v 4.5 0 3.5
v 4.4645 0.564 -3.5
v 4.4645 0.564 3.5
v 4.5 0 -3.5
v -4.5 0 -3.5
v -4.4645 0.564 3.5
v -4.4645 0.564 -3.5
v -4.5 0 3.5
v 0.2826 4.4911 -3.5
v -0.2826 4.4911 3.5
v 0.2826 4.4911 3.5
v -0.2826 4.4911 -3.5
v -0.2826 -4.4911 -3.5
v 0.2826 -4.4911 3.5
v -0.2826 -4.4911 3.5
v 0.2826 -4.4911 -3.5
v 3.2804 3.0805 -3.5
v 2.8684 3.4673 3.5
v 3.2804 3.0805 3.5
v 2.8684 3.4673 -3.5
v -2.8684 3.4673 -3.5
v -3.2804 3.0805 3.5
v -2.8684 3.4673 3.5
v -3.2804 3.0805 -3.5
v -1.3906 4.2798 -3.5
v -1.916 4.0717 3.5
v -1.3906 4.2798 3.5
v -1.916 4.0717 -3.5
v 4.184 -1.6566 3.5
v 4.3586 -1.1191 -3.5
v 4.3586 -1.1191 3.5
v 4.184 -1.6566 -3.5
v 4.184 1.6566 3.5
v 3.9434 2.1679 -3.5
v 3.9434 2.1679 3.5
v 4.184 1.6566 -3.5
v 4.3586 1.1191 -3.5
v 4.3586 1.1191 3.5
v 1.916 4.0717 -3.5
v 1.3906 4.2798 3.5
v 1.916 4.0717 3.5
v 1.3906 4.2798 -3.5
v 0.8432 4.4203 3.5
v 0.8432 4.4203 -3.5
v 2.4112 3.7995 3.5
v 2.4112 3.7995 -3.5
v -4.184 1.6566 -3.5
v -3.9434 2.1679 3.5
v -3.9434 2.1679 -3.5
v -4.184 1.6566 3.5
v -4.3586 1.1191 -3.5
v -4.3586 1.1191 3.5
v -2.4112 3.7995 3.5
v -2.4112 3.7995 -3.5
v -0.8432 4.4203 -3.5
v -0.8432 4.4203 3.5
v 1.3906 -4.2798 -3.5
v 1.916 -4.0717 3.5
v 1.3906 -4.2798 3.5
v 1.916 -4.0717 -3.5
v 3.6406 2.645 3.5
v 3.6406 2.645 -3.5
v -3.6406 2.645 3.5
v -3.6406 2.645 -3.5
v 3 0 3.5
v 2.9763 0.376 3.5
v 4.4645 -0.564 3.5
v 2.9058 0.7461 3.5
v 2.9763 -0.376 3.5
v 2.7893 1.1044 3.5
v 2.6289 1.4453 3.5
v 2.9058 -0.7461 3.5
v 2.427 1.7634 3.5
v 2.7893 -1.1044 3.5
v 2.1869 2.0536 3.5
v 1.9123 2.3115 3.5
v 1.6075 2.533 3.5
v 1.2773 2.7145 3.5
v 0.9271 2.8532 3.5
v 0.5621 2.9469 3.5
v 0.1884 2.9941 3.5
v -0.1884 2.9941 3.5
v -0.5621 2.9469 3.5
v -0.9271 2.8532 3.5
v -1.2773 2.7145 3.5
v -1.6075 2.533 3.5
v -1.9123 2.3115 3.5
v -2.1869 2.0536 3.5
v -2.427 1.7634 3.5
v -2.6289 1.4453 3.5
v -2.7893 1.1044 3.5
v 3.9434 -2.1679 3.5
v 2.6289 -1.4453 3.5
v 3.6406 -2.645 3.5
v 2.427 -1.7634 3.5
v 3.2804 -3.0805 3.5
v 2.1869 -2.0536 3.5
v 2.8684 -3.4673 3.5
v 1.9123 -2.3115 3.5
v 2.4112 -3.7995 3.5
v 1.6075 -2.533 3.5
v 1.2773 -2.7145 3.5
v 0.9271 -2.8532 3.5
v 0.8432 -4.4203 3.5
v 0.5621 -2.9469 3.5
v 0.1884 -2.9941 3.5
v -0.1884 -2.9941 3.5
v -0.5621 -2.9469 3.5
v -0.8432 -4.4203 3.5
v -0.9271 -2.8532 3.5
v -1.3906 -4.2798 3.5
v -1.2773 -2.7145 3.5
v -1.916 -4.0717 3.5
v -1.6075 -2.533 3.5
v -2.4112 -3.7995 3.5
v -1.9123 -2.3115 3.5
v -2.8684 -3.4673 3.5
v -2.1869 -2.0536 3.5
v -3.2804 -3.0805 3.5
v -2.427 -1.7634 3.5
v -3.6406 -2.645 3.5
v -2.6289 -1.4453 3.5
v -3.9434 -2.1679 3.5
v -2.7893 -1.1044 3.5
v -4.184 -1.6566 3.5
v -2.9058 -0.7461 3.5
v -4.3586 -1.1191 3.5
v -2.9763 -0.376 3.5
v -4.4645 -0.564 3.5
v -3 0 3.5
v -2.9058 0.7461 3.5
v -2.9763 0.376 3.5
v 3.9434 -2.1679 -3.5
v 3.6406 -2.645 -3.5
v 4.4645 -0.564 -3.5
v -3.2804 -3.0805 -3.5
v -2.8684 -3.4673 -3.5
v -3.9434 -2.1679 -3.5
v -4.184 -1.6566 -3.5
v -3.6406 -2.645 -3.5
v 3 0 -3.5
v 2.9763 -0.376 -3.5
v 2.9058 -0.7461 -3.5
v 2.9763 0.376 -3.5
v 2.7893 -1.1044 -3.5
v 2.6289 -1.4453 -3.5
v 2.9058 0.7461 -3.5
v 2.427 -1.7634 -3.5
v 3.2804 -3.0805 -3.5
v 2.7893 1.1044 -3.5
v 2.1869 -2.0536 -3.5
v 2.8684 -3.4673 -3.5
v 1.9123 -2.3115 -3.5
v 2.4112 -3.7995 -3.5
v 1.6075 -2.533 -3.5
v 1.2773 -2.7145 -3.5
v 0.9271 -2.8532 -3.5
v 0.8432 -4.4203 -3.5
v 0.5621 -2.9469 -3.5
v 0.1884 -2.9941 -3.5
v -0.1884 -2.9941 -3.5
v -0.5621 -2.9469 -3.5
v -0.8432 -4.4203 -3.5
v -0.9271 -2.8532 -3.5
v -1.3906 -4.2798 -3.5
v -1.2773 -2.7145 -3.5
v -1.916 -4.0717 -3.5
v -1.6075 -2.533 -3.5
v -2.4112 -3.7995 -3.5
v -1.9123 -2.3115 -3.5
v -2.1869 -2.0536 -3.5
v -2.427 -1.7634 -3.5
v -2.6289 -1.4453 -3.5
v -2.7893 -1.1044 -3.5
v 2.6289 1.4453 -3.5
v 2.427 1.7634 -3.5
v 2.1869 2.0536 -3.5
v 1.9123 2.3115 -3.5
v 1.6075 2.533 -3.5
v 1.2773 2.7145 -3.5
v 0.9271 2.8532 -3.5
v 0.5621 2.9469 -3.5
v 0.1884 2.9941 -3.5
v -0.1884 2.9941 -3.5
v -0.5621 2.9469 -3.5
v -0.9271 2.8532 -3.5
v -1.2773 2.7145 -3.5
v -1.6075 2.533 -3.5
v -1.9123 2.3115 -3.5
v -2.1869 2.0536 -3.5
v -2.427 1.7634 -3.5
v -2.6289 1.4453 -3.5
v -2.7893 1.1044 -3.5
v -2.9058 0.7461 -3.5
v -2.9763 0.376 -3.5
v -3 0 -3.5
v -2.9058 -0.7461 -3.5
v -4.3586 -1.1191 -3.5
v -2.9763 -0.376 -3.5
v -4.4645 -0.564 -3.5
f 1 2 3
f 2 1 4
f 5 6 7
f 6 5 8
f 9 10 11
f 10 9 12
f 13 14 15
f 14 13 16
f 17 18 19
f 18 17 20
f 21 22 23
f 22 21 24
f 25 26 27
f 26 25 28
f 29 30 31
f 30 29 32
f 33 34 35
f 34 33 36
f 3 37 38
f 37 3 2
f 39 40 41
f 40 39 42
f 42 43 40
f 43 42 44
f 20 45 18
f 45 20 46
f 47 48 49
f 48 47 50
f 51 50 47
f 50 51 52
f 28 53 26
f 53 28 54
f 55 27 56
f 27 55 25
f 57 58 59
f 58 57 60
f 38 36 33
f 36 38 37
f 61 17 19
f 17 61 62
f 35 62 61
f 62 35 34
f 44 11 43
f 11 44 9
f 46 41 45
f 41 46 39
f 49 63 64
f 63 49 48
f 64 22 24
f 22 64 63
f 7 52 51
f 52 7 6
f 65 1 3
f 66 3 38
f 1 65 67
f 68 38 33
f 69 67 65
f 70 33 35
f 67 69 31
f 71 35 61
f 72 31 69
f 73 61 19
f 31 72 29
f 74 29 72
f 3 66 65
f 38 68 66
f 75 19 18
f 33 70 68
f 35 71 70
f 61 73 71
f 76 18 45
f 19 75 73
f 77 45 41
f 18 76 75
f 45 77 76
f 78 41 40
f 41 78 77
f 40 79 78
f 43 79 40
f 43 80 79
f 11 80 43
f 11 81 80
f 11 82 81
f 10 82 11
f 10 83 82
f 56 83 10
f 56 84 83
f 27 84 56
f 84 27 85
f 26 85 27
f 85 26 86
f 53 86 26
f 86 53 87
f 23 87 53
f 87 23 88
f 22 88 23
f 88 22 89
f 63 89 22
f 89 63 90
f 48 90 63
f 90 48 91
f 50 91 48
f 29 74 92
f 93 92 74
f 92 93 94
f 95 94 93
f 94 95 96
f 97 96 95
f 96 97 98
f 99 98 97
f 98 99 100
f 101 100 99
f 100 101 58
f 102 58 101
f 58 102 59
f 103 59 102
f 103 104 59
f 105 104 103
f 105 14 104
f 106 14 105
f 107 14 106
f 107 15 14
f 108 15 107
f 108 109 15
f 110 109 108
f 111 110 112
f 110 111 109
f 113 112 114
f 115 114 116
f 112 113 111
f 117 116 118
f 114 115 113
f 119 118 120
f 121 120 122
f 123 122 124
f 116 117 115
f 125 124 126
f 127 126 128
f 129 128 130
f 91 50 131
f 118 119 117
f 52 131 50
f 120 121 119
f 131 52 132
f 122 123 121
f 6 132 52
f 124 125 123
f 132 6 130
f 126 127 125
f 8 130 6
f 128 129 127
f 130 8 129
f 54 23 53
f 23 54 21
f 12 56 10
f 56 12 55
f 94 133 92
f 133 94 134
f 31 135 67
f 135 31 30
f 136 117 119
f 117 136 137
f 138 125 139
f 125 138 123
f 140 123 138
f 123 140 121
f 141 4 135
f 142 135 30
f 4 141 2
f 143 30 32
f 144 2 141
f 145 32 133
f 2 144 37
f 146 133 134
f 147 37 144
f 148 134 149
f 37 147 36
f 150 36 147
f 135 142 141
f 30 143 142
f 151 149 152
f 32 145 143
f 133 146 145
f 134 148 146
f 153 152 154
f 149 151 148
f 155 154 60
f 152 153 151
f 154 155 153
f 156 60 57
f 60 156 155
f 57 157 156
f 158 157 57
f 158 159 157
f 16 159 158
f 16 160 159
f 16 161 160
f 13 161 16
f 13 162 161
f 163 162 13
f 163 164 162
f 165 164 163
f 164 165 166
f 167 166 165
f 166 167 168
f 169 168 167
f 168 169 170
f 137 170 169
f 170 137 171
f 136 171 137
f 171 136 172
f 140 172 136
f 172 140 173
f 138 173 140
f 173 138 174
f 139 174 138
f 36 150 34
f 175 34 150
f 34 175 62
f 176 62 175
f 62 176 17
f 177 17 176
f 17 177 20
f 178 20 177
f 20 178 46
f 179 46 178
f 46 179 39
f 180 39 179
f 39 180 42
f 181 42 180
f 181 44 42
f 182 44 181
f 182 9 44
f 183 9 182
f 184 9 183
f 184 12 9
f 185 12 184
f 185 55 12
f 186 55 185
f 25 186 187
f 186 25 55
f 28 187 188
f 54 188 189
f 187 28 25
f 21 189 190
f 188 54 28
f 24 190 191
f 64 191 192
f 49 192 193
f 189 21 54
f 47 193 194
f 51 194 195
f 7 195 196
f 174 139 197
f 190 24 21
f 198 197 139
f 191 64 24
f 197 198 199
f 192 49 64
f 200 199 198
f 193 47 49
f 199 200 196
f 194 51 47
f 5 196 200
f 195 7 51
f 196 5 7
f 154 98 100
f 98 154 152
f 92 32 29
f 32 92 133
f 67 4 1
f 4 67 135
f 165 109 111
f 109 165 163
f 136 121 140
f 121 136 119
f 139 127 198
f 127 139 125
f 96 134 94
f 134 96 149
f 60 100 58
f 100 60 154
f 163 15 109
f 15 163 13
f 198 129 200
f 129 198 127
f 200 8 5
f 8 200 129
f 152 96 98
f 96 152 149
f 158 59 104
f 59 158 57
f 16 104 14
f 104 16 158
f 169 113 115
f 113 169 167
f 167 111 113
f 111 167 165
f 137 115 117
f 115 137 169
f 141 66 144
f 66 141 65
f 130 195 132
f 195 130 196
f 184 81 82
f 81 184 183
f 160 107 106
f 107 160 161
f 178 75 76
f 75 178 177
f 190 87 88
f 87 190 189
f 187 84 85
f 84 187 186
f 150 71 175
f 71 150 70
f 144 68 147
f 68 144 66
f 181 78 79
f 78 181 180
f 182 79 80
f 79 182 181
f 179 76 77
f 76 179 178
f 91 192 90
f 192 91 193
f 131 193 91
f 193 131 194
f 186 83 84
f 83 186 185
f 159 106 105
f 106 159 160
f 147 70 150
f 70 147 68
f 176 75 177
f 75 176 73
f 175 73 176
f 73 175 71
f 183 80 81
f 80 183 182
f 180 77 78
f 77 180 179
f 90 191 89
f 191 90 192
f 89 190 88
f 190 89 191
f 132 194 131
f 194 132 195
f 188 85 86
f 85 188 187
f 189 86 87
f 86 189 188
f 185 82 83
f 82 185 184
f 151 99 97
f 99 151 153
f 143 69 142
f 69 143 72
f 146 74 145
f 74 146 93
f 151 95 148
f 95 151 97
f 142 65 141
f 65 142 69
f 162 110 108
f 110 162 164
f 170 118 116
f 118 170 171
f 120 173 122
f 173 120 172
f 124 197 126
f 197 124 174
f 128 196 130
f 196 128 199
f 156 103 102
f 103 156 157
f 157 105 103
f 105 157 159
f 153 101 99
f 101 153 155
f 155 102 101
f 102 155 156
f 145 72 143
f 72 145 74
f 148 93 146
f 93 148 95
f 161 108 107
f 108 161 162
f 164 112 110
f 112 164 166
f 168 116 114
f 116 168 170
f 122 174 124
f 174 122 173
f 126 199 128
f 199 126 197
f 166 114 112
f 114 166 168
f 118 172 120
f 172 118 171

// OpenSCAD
$fn = 50;


difference() {
	union() {
		translate(v = [0, 0, -3.5000000000]) {
			cylinder(h = 7, r = 4.5000000000);
		}
	}
	union() {
		translate(v = [0, 0, -100.0000000000]) {
			cylinder(h = 200, r = 3);
		}
	}
}
